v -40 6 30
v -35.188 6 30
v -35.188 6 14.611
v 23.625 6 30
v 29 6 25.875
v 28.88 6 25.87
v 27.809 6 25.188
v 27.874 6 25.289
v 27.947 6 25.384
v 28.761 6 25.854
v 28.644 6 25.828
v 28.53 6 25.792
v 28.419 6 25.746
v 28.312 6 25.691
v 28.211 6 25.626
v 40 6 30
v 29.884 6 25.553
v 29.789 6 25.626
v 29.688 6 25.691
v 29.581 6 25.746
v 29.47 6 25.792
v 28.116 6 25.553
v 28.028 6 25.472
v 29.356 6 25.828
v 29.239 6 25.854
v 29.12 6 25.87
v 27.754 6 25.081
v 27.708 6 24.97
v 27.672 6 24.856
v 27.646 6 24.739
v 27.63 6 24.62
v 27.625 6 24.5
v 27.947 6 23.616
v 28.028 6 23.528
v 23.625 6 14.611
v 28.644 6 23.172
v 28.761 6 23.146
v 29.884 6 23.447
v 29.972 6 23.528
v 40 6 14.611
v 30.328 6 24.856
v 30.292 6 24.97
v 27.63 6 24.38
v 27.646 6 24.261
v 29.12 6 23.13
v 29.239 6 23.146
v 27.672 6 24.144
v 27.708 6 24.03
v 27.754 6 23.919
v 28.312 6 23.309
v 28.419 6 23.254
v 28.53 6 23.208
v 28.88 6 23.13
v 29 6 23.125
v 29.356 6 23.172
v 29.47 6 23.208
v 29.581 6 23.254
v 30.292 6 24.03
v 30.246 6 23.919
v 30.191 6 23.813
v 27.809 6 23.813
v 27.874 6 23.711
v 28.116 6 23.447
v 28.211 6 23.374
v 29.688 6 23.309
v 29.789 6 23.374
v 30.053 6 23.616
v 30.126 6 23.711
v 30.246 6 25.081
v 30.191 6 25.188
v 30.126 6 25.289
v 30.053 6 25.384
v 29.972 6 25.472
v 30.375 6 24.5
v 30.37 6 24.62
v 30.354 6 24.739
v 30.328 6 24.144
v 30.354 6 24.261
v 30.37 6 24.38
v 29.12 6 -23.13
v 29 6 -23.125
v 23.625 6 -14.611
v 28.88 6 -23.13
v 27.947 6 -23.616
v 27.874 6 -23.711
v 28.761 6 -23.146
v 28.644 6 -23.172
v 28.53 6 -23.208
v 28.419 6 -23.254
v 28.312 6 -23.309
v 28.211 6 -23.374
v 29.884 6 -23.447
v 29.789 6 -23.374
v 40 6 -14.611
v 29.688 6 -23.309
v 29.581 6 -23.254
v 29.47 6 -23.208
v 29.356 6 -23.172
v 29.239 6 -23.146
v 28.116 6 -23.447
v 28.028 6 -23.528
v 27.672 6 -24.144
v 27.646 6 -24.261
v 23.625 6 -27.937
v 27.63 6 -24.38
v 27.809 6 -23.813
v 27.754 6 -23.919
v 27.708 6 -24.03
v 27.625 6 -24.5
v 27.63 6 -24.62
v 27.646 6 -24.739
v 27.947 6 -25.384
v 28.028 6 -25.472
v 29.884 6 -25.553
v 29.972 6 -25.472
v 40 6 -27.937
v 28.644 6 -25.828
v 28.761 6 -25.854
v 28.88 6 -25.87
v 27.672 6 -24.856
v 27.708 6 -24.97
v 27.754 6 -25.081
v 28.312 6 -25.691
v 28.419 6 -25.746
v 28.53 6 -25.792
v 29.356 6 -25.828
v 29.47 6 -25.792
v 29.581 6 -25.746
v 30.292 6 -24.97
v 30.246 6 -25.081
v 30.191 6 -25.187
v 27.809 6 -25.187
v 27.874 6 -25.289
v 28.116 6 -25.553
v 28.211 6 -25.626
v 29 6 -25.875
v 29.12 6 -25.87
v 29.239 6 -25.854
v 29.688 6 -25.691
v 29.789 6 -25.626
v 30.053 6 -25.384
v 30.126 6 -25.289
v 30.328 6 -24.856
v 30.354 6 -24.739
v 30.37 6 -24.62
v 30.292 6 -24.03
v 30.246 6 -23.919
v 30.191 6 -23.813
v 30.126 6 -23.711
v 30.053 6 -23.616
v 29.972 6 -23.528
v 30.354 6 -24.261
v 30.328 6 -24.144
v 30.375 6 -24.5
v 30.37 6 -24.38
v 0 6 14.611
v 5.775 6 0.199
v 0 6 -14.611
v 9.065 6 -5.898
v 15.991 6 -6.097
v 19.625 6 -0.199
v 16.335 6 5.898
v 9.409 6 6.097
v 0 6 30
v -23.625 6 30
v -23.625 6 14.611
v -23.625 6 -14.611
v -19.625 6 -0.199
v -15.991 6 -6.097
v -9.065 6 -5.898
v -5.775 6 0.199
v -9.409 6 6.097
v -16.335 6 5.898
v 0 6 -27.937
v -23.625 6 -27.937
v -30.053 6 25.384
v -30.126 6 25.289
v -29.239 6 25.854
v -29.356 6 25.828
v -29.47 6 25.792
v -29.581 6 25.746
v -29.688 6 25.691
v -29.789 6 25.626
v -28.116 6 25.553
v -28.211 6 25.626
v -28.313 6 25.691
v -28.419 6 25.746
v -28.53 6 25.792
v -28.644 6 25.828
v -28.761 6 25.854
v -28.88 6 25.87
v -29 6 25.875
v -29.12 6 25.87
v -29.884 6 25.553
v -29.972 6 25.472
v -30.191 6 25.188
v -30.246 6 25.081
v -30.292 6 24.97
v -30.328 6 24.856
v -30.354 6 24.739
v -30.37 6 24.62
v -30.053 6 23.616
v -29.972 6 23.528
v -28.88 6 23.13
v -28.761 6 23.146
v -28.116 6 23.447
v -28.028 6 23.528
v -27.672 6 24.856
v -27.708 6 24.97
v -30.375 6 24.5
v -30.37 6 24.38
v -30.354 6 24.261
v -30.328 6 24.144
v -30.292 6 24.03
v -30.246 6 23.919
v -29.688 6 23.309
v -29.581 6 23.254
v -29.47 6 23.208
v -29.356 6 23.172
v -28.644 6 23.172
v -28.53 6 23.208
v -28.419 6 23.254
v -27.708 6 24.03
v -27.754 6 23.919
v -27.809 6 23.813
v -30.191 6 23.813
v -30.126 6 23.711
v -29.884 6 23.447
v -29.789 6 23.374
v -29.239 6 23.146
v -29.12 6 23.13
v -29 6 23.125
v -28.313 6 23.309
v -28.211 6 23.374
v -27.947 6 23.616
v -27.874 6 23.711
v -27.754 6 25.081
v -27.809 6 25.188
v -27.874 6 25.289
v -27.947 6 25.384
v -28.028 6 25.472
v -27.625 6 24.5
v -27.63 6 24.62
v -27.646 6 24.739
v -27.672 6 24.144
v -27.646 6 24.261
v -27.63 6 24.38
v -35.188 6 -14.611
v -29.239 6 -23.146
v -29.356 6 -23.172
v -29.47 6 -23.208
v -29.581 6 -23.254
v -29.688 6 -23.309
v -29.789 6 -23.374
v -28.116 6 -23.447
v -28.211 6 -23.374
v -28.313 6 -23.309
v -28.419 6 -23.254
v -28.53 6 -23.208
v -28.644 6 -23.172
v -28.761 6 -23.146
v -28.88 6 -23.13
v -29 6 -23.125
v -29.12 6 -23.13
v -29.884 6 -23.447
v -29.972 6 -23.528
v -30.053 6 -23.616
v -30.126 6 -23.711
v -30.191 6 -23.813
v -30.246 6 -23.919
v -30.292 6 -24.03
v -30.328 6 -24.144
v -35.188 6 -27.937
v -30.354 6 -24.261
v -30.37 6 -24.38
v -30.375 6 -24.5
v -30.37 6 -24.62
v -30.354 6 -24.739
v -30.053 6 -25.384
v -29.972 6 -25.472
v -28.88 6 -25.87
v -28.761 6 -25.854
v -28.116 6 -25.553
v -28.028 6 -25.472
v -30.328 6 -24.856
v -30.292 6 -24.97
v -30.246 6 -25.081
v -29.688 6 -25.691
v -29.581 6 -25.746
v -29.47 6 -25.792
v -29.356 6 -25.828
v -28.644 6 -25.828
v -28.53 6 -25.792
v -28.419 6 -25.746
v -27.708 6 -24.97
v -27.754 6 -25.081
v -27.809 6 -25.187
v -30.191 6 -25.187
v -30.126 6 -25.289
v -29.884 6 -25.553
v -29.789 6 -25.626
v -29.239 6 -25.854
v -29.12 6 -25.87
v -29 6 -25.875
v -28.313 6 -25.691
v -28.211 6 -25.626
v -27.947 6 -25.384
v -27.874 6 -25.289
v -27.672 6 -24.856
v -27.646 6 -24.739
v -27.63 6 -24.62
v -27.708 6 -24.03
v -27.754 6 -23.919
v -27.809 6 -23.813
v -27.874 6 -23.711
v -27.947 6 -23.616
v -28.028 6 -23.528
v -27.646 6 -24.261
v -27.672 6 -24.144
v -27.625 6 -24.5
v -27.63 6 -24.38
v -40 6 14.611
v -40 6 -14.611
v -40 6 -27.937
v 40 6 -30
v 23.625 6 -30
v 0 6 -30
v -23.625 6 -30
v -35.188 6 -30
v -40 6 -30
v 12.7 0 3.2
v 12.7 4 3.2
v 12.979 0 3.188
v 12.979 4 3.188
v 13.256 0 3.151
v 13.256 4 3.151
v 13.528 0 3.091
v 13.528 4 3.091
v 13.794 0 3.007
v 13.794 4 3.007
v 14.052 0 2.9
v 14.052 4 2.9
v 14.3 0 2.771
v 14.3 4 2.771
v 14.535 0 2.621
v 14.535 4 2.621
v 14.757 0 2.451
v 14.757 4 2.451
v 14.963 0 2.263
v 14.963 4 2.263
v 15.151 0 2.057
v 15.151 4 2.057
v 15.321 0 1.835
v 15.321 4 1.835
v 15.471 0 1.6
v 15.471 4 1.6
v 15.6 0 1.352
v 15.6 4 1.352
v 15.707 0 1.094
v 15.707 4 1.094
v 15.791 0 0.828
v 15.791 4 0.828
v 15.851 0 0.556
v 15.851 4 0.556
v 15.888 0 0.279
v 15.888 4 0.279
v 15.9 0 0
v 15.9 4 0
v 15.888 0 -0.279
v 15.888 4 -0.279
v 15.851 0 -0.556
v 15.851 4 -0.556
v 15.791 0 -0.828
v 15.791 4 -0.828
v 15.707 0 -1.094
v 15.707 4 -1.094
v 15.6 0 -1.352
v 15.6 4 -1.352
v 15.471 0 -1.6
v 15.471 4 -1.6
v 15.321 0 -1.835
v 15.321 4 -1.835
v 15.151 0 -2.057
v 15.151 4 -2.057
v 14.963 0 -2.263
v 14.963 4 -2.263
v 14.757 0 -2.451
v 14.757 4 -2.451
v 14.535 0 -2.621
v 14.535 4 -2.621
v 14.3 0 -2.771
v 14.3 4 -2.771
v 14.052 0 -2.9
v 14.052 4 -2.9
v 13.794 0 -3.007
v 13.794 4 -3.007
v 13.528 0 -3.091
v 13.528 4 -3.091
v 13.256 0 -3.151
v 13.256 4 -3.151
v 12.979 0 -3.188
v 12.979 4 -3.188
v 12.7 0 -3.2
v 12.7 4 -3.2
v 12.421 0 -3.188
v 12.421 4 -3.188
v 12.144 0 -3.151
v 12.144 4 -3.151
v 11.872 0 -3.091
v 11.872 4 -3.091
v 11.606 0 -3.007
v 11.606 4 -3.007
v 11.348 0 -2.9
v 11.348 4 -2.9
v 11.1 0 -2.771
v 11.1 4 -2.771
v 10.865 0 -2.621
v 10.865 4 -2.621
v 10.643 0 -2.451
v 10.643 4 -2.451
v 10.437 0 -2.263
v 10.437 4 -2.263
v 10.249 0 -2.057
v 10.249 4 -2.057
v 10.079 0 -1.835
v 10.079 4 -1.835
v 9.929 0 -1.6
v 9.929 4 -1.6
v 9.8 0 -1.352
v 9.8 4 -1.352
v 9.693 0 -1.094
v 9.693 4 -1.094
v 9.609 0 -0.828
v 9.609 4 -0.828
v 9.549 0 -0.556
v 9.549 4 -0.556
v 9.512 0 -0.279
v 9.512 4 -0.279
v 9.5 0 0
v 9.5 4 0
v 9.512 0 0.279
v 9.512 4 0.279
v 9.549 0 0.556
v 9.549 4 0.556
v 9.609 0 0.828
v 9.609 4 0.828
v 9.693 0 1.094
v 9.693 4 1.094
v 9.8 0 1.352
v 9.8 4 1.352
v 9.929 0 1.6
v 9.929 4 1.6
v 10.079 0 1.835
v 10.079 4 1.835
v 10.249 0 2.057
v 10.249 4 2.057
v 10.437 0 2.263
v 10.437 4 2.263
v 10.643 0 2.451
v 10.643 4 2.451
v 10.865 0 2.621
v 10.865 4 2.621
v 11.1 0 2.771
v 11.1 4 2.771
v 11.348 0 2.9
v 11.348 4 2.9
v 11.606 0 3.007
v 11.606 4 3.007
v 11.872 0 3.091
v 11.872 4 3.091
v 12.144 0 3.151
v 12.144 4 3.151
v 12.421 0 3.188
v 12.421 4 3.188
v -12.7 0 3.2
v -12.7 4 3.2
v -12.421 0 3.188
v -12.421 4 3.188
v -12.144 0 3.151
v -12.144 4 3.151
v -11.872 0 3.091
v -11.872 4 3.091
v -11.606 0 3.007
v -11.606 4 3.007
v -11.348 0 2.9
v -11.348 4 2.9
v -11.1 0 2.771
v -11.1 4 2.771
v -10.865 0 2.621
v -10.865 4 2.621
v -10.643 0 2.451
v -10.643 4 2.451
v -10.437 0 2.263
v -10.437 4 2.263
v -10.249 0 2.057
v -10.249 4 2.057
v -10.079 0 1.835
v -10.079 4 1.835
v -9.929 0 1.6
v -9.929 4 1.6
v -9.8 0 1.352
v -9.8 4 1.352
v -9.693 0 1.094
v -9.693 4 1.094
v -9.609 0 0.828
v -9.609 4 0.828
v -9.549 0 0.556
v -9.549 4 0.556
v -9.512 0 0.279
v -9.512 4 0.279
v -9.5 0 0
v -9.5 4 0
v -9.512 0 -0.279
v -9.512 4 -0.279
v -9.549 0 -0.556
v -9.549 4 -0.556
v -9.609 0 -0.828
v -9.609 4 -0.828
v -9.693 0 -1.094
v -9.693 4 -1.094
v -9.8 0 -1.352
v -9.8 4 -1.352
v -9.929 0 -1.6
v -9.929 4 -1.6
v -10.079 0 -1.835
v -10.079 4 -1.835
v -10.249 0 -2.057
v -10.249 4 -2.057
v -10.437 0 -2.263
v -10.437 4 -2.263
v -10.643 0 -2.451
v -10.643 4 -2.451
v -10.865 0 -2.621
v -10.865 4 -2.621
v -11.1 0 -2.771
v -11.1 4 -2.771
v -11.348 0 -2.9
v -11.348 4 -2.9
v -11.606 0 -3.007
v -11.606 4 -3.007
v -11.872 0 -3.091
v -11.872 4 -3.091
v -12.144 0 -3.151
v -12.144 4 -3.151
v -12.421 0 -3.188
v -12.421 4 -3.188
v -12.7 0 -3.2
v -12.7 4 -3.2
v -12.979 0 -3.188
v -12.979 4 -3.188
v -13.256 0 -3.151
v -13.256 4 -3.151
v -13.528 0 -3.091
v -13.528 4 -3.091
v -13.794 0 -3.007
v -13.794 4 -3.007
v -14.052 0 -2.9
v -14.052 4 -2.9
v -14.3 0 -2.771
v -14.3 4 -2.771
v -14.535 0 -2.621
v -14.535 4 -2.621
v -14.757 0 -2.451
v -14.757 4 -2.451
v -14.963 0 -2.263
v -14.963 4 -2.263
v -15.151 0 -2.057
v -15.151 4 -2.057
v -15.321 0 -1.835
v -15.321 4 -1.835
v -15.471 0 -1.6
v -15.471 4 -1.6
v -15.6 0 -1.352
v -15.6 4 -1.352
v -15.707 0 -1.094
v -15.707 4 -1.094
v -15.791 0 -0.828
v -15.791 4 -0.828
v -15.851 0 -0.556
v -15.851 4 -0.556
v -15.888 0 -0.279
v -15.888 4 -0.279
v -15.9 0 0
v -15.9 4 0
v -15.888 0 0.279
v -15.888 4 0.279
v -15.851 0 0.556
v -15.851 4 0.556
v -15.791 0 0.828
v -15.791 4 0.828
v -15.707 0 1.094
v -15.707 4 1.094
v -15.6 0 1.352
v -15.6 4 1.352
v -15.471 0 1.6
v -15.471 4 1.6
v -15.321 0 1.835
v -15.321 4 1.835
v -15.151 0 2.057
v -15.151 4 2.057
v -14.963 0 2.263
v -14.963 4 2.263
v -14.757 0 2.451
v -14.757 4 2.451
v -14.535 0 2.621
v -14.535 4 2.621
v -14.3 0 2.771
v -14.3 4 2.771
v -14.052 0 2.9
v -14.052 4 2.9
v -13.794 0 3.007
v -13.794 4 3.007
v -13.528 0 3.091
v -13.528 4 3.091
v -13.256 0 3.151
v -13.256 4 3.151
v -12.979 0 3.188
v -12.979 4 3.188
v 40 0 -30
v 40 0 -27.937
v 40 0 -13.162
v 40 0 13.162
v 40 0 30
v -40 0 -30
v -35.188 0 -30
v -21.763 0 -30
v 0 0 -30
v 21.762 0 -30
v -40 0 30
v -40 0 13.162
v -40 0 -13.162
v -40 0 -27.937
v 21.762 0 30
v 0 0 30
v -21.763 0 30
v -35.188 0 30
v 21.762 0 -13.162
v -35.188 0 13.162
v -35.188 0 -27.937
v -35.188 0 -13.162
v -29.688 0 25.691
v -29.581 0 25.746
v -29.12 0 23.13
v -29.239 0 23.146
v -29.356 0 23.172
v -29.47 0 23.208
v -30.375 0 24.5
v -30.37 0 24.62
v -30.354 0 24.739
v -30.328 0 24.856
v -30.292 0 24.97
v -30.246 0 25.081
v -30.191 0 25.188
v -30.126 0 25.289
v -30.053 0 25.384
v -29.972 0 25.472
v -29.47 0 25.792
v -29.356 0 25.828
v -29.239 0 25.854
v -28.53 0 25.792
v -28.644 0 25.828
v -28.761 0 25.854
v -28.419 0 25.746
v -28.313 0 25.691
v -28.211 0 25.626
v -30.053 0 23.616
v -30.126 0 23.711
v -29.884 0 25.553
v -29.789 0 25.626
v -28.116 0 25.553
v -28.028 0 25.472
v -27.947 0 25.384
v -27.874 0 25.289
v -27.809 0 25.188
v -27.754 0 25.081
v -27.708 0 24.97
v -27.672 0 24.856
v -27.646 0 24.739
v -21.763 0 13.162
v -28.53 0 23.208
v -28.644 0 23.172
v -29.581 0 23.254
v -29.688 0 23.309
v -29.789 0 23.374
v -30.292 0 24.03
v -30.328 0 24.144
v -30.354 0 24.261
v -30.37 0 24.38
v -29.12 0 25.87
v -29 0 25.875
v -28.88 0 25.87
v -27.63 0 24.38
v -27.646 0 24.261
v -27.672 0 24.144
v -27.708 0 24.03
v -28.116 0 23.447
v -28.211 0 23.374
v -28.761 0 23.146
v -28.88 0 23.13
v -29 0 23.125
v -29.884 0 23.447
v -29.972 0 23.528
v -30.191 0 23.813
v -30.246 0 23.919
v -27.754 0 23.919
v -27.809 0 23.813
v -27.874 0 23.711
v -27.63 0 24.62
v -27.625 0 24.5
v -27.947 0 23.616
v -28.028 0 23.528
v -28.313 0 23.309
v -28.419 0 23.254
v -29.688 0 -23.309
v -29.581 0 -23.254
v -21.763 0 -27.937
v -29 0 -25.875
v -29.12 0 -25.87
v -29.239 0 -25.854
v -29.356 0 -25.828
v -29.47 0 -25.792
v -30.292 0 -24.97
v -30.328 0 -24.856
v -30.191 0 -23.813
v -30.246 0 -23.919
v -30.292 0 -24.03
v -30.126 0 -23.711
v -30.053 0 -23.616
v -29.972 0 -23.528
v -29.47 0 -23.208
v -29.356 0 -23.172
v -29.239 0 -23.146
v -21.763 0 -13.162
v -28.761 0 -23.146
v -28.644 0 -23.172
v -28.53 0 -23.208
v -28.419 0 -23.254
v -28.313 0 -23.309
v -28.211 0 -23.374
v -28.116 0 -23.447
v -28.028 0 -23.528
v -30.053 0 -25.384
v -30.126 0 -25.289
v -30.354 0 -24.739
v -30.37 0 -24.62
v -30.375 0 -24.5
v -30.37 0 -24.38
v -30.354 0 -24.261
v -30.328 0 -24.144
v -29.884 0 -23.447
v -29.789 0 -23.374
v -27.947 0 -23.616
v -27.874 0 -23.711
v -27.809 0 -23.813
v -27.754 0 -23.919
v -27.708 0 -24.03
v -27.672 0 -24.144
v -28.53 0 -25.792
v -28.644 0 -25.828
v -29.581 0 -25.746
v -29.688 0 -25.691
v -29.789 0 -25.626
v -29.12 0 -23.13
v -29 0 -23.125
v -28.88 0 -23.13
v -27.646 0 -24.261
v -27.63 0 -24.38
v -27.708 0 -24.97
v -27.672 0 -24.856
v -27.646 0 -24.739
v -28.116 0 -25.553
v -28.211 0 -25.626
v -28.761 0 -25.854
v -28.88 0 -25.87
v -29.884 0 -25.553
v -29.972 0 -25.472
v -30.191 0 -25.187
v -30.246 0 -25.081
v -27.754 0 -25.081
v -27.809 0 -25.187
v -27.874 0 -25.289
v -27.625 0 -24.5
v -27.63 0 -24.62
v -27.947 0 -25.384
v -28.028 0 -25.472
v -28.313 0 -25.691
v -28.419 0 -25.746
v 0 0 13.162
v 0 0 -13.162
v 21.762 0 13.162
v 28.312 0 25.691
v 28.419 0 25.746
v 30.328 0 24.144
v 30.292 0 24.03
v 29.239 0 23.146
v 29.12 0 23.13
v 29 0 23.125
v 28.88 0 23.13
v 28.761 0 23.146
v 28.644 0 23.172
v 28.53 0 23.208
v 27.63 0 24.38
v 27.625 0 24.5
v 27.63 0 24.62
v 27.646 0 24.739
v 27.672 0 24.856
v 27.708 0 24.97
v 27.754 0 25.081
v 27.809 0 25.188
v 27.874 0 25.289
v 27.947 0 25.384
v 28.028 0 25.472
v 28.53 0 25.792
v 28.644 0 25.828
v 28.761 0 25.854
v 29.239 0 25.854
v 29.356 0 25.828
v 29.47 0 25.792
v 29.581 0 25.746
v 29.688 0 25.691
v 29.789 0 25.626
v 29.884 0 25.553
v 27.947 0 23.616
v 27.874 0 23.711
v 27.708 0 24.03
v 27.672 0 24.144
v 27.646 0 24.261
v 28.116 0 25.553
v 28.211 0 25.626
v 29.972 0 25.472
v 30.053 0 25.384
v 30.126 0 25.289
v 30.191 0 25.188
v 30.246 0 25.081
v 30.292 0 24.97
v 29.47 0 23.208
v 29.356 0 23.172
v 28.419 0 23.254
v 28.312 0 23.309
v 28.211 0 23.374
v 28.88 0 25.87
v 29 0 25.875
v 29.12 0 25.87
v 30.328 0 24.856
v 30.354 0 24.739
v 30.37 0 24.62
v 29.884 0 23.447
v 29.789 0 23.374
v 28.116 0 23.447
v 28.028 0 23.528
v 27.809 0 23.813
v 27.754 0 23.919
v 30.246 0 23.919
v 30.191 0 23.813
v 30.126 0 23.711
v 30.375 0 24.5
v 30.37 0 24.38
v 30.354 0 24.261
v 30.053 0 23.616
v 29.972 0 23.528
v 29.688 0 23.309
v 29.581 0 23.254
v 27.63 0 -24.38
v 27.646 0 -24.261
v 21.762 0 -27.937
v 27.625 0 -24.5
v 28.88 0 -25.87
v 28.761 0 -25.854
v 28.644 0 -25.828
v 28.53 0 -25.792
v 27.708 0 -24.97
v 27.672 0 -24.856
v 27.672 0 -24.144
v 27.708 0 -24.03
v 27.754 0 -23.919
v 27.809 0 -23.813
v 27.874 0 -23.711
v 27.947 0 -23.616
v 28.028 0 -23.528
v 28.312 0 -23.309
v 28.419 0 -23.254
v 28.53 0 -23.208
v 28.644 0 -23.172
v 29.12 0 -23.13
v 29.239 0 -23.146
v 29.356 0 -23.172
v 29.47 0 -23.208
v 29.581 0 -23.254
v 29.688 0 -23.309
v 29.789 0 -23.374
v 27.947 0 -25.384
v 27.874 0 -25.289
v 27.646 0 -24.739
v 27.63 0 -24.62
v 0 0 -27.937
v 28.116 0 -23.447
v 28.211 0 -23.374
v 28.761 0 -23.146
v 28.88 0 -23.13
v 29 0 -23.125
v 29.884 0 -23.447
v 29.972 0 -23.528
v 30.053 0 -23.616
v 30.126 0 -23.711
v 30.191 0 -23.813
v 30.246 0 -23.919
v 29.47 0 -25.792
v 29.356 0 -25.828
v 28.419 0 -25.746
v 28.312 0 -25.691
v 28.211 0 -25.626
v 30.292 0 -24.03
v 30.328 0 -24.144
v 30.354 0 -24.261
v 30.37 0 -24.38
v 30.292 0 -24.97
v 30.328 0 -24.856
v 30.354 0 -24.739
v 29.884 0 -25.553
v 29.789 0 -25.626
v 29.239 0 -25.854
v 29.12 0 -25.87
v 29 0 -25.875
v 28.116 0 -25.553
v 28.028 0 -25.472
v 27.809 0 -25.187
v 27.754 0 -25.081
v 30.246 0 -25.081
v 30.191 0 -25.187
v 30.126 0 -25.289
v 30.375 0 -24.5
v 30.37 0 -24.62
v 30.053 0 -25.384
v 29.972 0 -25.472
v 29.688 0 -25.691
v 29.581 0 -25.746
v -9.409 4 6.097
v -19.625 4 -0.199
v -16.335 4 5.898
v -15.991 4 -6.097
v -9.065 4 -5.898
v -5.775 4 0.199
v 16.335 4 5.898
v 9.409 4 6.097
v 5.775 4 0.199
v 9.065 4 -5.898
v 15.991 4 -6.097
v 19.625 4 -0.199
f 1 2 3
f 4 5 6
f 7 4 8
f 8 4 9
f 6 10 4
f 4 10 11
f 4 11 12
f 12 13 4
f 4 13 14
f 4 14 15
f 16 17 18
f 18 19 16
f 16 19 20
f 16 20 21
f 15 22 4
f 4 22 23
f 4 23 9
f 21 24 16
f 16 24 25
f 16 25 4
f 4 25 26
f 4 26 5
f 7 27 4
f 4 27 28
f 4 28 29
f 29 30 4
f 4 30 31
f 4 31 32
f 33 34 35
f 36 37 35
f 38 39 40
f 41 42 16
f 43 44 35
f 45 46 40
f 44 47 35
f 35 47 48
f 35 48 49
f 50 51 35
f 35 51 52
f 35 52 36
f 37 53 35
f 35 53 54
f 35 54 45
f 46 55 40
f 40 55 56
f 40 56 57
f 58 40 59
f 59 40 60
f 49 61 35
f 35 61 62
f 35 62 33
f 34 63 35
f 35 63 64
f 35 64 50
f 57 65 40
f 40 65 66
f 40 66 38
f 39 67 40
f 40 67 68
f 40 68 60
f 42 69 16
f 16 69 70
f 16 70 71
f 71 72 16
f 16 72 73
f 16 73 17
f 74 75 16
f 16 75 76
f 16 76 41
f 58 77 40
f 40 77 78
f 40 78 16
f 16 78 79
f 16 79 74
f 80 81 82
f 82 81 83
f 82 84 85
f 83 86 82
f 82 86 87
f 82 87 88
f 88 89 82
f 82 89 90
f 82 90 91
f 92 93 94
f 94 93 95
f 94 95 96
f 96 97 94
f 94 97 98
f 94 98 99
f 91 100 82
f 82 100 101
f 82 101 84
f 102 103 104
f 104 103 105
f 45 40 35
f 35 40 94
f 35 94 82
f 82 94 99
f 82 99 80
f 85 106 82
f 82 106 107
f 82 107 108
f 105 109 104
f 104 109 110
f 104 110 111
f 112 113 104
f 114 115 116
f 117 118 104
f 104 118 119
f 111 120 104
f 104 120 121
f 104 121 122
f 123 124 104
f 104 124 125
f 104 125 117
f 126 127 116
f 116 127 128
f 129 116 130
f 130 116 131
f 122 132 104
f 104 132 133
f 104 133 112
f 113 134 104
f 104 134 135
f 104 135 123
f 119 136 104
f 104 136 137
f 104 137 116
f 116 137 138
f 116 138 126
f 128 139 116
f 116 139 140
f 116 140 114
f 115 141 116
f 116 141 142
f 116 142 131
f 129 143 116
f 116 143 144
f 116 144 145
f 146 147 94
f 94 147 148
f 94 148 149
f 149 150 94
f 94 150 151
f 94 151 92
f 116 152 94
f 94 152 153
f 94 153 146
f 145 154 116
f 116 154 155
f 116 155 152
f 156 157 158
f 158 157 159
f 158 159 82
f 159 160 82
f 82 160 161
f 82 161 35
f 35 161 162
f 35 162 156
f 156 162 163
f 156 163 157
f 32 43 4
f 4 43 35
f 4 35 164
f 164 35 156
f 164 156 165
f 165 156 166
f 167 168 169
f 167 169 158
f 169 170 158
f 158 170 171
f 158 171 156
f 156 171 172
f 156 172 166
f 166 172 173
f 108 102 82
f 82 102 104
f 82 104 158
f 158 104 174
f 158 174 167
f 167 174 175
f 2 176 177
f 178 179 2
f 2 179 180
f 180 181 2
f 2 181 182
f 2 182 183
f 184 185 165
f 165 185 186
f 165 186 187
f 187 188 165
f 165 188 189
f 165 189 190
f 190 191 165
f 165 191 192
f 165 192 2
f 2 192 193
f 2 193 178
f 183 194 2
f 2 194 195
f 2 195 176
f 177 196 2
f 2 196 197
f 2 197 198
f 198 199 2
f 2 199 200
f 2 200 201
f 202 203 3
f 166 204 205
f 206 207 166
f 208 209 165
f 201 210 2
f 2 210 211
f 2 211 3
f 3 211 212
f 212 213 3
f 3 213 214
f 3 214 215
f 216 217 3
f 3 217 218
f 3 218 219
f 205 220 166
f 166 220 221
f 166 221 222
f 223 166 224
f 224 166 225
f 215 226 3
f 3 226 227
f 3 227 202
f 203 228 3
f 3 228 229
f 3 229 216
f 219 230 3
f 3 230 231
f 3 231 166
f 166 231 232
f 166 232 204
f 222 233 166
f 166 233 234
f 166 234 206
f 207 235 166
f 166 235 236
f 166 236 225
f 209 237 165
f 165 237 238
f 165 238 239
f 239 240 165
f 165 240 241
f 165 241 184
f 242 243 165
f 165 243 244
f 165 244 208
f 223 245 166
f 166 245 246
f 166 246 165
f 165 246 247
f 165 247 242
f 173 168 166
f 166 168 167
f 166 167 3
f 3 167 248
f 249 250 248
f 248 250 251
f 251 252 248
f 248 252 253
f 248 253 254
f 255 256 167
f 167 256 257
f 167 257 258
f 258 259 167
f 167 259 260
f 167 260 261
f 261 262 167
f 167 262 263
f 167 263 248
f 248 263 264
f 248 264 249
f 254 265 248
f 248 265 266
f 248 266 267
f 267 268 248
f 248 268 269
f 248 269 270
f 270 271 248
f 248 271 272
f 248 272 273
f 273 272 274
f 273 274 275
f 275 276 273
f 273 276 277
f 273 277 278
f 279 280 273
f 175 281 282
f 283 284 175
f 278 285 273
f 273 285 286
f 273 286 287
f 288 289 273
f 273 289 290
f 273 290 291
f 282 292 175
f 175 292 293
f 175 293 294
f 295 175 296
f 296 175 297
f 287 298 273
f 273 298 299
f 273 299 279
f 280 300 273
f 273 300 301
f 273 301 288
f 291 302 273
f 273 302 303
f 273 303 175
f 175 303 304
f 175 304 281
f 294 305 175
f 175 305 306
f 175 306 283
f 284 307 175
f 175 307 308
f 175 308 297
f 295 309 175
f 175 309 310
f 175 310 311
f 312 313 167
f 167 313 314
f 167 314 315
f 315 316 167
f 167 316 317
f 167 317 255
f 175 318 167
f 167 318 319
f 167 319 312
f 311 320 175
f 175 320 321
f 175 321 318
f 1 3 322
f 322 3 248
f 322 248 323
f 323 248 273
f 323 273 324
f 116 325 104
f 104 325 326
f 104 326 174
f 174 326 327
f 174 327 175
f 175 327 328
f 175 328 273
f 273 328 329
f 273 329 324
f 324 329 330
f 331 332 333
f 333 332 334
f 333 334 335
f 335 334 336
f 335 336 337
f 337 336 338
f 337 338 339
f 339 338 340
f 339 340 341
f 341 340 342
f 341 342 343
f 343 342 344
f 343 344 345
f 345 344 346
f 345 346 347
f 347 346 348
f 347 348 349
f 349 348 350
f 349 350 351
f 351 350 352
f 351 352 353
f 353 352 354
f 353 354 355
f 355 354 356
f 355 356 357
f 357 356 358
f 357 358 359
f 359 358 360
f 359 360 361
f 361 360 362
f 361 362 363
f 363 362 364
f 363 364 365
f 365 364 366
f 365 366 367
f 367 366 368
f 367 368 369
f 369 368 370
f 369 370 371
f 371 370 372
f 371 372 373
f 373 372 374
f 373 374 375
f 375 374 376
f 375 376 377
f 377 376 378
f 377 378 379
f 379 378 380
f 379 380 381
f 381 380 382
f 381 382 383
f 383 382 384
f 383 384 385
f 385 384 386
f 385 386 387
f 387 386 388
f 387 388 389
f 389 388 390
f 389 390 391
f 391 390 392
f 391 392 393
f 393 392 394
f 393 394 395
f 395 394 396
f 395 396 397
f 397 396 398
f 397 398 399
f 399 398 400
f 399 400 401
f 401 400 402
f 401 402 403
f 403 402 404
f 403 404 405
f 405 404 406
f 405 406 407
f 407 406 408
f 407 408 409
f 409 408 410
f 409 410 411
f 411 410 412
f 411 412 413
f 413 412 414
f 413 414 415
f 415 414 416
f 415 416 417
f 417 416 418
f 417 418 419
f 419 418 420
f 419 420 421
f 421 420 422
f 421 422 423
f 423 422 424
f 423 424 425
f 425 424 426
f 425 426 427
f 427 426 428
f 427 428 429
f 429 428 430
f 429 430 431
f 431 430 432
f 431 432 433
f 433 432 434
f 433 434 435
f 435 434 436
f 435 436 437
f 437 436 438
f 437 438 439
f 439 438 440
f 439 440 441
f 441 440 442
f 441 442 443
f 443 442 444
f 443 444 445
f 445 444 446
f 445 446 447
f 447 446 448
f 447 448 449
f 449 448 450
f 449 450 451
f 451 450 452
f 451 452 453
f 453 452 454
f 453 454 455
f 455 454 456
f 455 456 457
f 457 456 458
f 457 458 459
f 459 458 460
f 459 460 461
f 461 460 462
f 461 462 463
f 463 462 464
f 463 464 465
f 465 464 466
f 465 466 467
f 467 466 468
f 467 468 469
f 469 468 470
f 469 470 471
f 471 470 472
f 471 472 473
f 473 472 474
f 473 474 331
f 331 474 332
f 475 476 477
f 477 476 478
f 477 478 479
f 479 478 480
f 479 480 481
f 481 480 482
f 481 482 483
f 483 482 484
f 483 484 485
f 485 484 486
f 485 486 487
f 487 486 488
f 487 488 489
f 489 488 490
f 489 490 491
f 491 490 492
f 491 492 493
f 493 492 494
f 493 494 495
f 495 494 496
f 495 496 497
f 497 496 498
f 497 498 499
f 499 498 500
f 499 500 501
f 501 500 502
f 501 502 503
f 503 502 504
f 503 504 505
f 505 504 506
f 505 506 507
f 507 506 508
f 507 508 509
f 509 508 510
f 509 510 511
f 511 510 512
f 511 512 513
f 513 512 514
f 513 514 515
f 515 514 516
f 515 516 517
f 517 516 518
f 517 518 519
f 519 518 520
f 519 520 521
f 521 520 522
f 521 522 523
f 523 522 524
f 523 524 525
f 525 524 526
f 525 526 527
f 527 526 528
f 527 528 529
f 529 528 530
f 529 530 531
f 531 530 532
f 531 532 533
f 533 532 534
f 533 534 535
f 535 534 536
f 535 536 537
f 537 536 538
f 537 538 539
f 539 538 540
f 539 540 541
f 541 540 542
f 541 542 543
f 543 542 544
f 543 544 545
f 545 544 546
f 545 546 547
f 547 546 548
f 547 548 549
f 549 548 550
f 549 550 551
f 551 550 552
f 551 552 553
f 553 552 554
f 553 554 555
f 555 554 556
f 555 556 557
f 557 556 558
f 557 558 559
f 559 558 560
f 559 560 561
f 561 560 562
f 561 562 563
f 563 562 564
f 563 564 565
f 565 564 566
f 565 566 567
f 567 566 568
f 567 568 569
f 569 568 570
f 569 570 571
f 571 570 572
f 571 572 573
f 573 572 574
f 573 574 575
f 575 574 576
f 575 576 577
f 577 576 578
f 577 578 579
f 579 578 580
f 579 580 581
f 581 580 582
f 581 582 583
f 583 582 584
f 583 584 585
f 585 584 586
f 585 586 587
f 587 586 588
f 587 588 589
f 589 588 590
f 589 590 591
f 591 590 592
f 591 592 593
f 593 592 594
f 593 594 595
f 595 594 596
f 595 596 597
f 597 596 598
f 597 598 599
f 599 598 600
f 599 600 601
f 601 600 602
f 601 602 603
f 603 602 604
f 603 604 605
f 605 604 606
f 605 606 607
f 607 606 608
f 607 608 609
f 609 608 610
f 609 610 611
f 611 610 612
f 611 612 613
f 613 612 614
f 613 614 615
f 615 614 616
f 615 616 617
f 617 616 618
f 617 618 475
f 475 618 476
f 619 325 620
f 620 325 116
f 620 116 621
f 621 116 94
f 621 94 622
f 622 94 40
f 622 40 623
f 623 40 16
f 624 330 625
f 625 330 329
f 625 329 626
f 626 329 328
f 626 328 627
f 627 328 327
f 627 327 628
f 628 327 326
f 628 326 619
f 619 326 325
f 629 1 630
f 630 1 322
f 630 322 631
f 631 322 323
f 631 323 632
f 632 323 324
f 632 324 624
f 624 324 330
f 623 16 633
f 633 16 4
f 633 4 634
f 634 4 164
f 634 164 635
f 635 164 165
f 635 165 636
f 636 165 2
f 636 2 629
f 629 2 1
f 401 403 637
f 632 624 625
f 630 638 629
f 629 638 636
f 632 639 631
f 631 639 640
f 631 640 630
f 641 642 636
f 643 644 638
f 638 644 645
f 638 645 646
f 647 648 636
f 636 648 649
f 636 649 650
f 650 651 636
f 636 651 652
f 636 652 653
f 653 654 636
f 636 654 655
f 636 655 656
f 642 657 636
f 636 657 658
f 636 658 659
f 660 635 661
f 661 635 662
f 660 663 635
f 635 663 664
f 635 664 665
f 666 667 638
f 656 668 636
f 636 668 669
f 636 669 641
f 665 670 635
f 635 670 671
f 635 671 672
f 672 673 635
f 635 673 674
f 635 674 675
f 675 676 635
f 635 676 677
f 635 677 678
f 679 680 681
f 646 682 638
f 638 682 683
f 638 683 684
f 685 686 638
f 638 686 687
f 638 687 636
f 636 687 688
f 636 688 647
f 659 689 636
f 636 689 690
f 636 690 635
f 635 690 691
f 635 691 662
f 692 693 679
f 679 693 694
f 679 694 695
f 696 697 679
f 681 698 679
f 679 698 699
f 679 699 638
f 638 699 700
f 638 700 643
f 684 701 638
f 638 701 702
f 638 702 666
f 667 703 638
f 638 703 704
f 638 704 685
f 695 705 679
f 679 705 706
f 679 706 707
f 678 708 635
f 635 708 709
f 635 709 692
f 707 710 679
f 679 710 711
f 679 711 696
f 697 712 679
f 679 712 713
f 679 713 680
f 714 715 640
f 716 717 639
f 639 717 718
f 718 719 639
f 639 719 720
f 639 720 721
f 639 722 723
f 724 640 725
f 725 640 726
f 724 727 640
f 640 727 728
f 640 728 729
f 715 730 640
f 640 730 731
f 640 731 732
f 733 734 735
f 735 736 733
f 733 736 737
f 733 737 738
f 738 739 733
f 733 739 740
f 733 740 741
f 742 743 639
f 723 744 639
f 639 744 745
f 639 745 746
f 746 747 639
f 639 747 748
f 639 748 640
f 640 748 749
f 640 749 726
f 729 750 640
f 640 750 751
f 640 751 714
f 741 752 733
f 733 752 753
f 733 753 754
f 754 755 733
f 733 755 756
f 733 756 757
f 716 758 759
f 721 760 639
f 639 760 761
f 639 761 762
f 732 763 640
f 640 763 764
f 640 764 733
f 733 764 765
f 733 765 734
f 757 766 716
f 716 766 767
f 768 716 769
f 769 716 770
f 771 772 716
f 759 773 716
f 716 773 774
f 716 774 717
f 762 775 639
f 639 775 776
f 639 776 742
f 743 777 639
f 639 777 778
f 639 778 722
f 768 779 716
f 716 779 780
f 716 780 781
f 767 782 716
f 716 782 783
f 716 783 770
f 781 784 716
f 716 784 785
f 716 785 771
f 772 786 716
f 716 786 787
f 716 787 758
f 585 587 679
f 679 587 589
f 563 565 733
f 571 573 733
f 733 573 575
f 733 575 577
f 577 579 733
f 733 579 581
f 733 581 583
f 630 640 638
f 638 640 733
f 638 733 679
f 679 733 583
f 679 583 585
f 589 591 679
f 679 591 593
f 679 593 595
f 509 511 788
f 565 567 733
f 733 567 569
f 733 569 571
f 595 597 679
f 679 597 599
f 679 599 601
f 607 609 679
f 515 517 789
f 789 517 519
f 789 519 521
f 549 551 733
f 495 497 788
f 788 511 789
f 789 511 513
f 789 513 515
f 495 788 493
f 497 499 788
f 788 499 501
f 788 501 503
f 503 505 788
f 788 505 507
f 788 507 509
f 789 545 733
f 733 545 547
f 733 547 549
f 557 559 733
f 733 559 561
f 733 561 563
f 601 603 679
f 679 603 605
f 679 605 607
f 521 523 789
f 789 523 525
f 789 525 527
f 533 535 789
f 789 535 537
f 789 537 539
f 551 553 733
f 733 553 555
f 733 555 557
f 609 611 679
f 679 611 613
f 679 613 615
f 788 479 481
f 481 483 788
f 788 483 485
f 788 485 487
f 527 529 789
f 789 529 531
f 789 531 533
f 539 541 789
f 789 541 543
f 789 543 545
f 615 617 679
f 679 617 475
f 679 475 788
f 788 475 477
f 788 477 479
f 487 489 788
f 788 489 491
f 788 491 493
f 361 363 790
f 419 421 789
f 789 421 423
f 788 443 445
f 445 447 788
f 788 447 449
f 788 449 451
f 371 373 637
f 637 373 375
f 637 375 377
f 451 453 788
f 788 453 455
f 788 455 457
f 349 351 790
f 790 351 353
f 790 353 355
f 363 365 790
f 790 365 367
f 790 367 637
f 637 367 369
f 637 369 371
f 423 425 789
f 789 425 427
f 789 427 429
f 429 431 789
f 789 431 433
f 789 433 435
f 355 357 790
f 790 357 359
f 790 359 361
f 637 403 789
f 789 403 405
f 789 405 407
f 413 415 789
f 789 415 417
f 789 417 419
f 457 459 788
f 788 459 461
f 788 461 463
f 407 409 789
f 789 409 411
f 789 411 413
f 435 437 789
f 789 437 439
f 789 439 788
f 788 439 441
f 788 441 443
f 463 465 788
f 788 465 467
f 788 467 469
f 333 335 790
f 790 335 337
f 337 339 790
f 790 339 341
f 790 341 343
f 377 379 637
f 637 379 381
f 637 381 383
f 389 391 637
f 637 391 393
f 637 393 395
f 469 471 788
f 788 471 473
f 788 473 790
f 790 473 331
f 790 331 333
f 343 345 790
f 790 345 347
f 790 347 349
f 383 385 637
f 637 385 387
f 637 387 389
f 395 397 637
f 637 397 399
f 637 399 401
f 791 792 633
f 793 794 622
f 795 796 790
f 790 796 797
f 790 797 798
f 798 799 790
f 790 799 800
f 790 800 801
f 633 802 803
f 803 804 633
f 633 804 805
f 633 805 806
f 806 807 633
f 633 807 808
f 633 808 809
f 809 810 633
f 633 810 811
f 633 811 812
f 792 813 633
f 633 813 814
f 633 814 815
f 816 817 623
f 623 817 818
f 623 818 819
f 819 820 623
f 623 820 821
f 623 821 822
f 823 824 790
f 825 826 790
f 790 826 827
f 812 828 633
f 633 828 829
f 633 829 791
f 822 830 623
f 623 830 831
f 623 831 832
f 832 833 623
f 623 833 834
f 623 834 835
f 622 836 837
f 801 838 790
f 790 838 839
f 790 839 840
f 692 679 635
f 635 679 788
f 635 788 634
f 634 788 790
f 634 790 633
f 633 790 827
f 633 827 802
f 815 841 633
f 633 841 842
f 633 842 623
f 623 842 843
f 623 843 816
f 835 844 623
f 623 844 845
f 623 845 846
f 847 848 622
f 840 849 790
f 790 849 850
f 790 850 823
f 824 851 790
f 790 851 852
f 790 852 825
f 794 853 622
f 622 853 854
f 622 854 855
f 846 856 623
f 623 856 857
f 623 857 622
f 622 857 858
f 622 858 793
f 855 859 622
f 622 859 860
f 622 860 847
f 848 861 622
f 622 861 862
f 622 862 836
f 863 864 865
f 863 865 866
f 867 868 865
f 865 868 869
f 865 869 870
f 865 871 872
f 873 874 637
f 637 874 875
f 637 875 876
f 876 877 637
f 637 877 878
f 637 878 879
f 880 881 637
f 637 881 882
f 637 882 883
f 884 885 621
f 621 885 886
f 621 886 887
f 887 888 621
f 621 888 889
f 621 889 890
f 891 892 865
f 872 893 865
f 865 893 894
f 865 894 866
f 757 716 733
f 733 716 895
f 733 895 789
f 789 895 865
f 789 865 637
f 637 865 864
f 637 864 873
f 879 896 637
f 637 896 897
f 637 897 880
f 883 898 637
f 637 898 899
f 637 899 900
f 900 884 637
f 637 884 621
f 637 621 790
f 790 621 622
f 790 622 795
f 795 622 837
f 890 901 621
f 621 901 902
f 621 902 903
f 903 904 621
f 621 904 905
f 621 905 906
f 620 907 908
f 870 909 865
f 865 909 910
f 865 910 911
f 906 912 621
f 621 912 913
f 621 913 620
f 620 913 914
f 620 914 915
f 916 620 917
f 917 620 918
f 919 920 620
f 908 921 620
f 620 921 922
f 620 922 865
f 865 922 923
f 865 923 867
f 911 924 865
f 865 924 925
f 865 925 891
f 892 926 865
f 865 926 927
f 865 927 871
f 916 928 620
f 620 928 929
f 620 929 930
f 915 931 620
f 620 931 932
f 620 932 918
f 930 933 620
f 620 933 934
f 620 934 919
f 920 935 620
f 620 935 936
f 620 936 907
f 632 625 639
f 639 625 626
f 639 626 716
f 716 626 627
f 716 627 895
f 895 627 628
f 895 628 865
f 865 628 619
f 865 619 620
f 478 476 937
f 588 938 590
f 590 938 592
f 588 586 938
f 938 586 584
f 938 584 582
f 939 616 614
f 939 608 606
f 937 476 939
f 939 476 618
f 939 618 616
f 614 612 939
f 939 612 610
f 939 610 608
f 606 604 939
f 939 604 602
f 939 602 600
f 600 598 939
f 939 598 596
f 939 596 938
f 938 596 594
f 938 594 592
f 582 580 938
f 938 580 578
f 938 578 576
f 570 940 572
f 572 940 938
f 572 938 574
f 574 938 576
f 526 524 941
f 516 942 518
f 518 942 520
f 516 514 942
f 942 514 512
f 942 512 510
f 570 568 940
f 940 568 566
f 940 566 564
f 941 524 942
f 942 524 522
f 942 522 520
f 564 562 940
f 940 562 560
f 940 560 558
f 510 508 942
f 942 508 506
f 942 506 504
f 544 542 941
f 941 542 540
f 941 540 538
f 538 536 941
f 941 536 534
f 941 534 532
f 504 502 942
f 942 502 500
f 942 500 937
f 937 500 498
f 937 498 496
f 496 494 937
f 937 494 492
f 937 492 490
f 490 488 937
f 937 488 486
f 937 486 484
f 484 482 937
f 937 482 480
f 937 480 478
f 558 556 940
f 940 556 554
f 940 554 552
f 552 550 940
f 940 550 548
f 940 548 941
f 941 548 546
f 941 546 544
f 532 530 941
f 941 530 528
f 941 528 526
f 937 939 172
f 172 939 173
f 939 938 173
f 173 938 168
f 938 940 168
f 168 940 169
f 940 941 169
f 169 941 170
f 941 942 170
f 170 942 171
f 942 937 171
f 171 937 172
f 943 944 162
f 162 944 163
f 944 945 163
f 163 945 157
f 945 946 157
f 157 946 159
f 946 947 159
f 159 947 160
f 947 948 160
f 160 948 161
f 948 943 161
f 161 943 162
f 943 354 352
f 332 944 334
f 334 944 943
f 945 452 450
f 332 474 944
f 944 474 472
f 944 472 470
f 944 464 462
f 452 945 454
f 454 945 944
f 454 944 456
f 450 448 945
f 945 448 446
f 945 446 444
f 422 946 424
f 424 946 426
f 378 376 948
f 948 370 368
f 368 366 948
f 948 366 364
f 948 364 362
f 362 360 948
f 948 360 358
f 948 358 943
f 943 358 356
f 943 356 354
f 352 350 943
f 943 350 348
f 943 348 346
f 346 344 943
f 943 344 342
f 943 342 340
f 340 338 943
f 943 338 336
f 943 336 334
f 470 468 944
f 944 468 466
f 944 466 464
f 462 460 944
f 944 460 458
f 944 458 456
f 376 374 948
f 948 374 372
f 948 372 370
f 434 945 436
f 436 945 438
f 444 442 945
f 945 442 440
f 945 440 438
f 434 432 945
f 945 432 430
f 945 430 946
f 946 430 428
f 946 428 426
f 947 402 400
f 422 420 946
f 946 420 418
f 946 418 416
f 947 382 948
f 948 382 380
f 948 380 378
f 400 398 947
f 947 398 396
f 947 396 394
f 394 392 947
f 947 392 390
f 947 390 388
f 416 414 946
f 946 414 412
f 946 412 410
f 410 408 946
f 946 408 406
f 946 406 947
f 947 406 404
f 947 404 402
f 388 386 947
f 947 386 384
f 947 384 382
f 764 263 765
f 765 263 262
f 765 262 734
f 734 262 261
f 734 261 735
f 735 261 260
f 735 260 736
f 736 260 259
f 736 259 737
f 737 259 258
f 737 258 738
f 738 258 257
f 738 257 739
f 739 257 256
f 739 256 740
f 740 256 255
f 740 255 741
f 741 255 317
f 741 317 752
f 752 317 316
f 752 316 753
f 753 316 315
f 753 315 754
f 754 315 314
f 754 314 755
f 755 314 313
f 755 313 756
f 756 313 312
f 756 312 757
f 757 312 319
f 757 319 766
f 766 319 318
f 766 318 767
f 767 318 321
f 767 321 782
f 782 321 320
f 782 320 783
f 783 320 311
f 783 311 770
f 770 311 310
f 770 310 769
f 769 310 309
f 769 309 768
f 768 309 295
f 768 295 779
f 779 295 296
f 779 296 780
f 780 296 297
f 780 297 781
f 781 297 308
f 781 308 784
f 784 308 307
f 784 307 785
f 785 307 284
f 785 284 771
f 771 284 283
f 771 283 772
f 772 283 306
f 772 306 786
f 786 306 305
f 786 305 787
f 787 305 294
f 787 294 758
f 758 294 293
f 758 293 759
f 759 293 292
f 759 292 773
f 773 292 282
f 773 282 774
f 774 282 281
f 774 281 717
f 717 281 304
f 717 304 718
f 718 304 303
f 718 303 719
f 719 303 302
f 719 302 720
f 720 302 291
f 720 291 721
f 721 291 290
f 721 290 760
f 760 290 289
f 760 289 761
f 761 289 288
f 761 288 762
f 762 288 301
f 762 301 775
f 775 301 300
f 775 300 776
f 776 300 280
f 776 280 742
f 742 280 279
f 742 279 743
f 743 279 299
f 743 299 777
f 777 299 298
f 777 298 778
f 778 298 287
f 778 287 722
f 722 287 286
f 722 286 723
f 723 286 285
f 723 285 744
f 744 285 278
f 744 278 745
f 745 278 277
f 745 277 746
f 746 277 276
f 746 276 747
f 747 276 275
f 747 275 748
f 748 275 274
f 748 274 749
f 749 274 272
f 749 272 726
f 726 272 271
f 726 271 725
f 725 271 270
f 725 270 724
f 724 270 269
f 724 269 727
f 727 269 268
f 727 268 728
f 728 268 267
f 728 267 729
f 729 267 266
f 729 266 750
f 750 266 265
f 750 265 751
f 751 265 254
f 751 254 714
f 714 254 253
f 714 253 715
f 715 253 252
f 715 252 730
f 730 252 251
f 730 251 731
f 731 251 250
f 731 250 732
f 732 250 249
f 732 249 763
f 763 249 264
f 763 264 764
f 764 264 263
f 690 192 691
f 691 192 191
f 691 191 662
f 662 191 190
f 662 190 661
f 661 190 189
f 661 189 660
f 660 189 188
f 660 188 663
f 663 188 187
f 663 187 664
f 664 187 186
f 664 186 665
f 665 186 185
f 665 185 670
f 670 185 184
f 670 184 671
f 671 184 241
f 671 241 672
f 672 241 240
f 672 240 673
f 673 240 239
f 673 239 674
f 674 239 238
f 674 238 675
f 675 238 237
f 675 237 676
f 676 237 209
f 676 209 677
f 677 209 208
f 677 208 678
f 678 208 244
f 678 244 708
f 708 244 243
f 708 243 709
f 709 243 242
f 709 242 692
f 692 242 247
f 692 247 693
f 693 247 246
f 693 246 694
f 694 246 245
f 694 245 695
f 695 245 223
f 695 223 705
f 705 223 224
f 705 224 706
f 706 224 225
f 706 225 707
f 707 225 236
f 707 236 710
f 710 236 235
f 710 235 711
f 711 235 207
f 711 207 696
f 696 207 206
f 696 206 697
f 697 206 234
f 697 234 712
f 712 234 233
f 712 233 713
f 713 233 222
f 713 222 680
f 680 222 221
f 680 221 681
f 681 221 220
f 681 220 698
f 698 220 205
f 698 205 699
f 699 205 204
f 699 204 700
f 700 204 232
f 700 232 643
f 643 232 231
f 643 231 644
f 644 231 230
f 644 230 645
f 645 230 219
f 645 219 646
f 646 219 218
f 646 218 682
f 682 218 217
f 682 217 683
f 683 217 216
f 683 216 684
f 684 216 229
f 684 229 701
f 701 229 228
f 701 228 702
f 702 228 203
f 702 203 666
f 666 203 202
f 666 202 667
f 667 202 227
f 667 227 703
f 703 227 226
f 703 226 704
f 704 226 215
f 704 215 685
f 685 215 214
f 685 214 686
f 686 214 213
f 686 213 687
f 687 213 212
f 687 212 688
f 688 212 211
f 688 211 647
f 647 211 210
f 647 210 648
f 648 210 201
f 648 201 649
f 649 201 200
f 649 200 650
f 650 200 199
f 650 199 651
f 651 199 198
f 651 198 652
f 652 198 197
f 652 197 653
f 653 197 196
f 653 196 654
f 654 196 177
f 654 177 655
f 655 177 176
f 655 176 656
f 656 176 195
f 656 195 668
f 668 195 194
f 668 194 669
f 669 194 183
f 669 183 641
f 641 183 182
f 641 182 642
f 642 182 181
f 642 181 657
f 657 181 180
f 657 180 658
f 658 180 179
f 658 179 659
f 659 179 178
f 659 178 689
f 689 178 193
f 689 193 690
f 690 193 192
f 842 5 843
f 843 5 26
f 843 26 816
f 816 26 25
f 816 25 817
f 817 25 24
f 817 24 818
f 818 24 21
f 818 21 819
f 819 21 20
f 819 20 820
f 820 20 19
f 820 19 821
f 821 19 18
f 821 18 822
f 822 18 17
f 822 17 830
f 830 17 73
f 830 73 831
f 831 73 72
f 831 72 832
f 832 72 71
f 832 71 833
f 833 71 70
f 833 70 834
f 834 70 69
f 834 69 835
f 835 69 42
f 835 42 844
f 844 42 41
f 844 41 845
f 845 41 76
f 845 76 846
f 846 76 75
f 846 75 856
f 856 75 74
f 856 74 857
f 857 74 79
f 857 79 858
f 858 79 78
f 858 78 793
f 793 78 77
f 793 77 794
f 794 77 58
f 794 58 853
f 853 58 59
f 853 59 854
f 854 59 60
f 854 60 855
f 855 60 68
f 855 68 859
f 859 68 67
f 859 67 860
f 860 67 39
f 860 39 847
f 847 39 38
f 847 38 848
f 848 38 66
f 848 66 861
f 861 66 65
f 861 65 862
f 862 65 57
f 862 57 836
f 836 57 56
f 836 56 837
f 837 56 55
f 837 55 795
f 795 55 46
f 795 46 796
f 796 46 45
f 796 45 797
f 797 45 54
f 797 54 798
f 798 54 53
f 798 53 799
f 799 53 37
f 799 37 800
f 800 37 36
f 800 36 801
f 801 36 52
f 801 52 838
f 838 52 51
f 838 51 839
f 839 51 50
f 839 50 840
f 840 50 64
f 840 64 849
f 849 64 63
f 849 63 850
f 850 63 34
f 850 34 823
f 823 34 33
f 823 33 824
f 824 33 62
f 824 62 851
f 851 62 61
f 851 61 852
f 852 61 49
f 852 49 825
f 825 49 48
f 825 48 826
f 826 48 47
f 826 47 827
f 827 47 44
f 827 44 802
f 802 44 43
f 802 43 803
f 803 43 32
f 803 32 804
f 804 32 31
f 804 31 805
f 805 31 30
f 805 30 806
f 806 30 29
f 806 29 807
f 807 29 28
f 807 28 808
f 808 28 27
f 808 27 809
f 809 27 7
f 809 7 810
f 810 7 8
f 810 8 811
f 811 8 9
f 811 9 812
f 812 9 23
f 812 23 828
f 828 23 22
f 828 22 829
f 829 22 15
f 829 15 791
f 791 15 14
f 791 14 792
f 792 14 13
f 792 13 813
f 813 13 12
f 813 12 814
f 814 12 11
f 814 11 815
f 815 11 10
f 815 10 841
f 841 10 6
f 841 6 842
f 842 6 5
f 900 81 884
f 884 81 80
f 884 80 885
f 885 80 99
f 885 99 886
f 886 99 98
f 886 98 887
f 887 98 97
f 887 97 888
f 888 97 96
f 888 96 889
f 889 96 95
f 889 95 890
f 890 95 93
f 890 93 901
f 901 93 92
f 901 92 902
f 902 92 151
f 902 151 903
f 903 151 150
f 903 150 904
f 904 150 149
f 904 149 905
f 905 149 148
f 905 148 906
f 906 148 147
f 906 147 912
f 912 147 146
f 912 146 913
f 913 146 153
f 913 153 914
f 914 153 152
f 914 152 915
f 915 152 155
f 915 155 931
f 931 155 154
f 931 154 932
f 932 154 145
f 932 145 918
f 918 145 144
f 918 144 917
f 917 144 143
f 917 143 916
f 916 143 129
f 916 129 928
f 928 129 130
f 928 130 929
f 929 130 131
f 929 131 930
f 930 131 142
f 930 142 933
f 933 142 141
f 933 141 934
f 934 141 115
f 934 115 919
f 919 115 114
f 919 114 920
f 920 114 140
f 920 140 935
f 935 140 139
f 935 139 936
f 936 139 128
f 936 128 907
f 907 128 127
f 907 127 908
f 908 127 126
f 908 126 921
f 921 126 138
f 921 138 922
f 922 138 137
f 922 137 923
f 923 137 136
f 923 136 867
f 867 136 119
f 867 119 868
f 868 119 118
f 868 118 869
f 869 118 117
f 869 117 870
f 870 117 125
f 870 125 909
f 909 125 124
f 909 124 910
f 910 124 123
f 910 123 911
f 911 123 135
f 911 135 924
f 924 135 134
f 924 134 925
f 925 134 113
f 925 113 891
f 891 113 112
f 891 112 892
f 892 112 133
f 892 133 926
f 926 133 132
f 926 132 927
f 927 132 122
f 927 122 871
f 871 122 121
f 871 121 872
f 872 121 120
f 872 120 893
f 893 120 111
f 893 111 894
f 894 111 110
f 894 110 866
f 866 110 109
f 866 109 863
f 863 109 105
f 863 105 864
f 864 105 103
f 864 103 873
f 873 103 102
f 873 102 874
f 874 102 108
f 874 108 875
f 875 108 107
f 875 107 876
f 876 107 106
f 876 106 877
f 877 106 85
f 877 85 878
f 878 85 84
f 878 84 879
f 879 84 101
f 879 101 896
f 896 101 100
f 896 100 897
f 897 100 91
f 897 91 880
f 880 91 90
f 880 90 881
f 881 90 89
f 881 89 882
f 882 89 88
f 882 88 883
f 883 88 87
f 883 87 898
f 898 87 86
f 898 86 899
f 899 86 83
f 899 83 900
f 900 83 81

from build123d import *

# Parameters (mm, degrees)
SKETCH2_W               = 80
SKETCH2_H               = 60
BOSS_EXTRUDE2_DEPTH     = 6
SKETCH3_R               = 3.2
CUT_EXTRUDE1_DEPTH      = 6
CUT_EXTRUDE2_DEPTH      = 2
SKETCH6_R               = 1.375
CUT_EXTRUDE3_DEPTH      = 6
MIRROR4_COPY_1_SKETCH_R = 1.375
MIRROR4_COPY_1_DEPTH    = 6


with BuildPart() as part:
    # Sketch2 → Boss-Extrude2 (new body)
    with BuildSketch(Plane(origin=(0, 0, 0), x_dir=(1, 0, 0), z_dir=(0, 1, 0))):
        Rectangle(SKETCH2_W, SKETCH2_H)
    extrude(amount=BOSS_EXTRUDE2_DEPTH)

    # Sketch3 → Cut-Extrude1 (cut)
    with BuildSketch(Plane(origin=(0, 6, 0), x_dir=(1, 0, 0), z_dir=(0, 1, 0))):
        with Locations((-12.7, 0)):
            Circle(SKETCH3_R)
    cut_extrude1 = extrude(amount=-CUT_EXTRUDE1_DEPTH, mode=Mode.SUBTRACT)

    # Sketch5 → Cut-Extrude2 (cut)
    with BuildSketch(Plane(origin=(0, 6, 0), x_dir=(1, 0, 0), z_dir=(0, 1, 0))):
        Polygon((-9.409372911, -6.096865864), (-5.774645734, -0.198666278), (-9.065272823, 5.898199586), (-15.990627089, 6.096865864), (-19.625354266, 0.198666278), (-16.334727177, -5.898199586), align=None)
    cut_extrude2 = extrude(amount=-CUT_EXTRUDE2_DEPTH, mode=Mode.SUBTRACT)

    # Mirror2: Cut-Extrude1, Cut-Extrude2 across plane
    add(cut_extrude1.mirror(Plane(origin=(0, 0, 0), x_dir=(0, 0, 1), z_dir=(1, 0, 0))), mode=Mode.SUBTRACT)
    add(cut_extrude2.mirror(Plane(origin=(0, 0, 0), x_dir=(0, 0, 1), z_dir=(1, 0, 0))), mode=Mode.SUBTRACT)

    # Sketch6 → Cut-Extrude3 (cut)
    with BuildSketch(Plane(origin=(0, 6, 0), x_dir=(1, 0, 0), z_dir=(0, 1, 0))):
        with Locations((-29, 24.5)):
            Circle(SKETCH6_R)
    cut_extrude3 = extrude(amount=-CUT_EXTRUDE3_DEPTH, mode=Mode.SUBTRACT)

    # Mirror3: Cut-Extrude3 across plane
    add(cut_extrude3.mirror(Plane.XY), mode=Mode.SUBTRACT)

    # Mirror4: Cut-Extrude3 across plane
    add(cut_extrude3.mirror(Plane(origin=(0, 0, 0), x_dir=(0, 0, 1), z_dir=(1, 0, 0))), mode=Mode.SUBTRACT)

    # Mirror4 copy 1 sketch → Mirror4 copy 1 (cut)
    with BuildSketch(Plane(origin=(0, 6, 0), x_dir=(-1, 0, 0), z_dir=(0, 1, 0))):
        with Locations((-29, 24.5)):
            Circle(MIRROR4_COPY_1_SKETCH_R)
    extrude(amount=-MIRROR4_COPY_1_DEPTH, mode=Mode.SUBTRACT)


solid = part.part
